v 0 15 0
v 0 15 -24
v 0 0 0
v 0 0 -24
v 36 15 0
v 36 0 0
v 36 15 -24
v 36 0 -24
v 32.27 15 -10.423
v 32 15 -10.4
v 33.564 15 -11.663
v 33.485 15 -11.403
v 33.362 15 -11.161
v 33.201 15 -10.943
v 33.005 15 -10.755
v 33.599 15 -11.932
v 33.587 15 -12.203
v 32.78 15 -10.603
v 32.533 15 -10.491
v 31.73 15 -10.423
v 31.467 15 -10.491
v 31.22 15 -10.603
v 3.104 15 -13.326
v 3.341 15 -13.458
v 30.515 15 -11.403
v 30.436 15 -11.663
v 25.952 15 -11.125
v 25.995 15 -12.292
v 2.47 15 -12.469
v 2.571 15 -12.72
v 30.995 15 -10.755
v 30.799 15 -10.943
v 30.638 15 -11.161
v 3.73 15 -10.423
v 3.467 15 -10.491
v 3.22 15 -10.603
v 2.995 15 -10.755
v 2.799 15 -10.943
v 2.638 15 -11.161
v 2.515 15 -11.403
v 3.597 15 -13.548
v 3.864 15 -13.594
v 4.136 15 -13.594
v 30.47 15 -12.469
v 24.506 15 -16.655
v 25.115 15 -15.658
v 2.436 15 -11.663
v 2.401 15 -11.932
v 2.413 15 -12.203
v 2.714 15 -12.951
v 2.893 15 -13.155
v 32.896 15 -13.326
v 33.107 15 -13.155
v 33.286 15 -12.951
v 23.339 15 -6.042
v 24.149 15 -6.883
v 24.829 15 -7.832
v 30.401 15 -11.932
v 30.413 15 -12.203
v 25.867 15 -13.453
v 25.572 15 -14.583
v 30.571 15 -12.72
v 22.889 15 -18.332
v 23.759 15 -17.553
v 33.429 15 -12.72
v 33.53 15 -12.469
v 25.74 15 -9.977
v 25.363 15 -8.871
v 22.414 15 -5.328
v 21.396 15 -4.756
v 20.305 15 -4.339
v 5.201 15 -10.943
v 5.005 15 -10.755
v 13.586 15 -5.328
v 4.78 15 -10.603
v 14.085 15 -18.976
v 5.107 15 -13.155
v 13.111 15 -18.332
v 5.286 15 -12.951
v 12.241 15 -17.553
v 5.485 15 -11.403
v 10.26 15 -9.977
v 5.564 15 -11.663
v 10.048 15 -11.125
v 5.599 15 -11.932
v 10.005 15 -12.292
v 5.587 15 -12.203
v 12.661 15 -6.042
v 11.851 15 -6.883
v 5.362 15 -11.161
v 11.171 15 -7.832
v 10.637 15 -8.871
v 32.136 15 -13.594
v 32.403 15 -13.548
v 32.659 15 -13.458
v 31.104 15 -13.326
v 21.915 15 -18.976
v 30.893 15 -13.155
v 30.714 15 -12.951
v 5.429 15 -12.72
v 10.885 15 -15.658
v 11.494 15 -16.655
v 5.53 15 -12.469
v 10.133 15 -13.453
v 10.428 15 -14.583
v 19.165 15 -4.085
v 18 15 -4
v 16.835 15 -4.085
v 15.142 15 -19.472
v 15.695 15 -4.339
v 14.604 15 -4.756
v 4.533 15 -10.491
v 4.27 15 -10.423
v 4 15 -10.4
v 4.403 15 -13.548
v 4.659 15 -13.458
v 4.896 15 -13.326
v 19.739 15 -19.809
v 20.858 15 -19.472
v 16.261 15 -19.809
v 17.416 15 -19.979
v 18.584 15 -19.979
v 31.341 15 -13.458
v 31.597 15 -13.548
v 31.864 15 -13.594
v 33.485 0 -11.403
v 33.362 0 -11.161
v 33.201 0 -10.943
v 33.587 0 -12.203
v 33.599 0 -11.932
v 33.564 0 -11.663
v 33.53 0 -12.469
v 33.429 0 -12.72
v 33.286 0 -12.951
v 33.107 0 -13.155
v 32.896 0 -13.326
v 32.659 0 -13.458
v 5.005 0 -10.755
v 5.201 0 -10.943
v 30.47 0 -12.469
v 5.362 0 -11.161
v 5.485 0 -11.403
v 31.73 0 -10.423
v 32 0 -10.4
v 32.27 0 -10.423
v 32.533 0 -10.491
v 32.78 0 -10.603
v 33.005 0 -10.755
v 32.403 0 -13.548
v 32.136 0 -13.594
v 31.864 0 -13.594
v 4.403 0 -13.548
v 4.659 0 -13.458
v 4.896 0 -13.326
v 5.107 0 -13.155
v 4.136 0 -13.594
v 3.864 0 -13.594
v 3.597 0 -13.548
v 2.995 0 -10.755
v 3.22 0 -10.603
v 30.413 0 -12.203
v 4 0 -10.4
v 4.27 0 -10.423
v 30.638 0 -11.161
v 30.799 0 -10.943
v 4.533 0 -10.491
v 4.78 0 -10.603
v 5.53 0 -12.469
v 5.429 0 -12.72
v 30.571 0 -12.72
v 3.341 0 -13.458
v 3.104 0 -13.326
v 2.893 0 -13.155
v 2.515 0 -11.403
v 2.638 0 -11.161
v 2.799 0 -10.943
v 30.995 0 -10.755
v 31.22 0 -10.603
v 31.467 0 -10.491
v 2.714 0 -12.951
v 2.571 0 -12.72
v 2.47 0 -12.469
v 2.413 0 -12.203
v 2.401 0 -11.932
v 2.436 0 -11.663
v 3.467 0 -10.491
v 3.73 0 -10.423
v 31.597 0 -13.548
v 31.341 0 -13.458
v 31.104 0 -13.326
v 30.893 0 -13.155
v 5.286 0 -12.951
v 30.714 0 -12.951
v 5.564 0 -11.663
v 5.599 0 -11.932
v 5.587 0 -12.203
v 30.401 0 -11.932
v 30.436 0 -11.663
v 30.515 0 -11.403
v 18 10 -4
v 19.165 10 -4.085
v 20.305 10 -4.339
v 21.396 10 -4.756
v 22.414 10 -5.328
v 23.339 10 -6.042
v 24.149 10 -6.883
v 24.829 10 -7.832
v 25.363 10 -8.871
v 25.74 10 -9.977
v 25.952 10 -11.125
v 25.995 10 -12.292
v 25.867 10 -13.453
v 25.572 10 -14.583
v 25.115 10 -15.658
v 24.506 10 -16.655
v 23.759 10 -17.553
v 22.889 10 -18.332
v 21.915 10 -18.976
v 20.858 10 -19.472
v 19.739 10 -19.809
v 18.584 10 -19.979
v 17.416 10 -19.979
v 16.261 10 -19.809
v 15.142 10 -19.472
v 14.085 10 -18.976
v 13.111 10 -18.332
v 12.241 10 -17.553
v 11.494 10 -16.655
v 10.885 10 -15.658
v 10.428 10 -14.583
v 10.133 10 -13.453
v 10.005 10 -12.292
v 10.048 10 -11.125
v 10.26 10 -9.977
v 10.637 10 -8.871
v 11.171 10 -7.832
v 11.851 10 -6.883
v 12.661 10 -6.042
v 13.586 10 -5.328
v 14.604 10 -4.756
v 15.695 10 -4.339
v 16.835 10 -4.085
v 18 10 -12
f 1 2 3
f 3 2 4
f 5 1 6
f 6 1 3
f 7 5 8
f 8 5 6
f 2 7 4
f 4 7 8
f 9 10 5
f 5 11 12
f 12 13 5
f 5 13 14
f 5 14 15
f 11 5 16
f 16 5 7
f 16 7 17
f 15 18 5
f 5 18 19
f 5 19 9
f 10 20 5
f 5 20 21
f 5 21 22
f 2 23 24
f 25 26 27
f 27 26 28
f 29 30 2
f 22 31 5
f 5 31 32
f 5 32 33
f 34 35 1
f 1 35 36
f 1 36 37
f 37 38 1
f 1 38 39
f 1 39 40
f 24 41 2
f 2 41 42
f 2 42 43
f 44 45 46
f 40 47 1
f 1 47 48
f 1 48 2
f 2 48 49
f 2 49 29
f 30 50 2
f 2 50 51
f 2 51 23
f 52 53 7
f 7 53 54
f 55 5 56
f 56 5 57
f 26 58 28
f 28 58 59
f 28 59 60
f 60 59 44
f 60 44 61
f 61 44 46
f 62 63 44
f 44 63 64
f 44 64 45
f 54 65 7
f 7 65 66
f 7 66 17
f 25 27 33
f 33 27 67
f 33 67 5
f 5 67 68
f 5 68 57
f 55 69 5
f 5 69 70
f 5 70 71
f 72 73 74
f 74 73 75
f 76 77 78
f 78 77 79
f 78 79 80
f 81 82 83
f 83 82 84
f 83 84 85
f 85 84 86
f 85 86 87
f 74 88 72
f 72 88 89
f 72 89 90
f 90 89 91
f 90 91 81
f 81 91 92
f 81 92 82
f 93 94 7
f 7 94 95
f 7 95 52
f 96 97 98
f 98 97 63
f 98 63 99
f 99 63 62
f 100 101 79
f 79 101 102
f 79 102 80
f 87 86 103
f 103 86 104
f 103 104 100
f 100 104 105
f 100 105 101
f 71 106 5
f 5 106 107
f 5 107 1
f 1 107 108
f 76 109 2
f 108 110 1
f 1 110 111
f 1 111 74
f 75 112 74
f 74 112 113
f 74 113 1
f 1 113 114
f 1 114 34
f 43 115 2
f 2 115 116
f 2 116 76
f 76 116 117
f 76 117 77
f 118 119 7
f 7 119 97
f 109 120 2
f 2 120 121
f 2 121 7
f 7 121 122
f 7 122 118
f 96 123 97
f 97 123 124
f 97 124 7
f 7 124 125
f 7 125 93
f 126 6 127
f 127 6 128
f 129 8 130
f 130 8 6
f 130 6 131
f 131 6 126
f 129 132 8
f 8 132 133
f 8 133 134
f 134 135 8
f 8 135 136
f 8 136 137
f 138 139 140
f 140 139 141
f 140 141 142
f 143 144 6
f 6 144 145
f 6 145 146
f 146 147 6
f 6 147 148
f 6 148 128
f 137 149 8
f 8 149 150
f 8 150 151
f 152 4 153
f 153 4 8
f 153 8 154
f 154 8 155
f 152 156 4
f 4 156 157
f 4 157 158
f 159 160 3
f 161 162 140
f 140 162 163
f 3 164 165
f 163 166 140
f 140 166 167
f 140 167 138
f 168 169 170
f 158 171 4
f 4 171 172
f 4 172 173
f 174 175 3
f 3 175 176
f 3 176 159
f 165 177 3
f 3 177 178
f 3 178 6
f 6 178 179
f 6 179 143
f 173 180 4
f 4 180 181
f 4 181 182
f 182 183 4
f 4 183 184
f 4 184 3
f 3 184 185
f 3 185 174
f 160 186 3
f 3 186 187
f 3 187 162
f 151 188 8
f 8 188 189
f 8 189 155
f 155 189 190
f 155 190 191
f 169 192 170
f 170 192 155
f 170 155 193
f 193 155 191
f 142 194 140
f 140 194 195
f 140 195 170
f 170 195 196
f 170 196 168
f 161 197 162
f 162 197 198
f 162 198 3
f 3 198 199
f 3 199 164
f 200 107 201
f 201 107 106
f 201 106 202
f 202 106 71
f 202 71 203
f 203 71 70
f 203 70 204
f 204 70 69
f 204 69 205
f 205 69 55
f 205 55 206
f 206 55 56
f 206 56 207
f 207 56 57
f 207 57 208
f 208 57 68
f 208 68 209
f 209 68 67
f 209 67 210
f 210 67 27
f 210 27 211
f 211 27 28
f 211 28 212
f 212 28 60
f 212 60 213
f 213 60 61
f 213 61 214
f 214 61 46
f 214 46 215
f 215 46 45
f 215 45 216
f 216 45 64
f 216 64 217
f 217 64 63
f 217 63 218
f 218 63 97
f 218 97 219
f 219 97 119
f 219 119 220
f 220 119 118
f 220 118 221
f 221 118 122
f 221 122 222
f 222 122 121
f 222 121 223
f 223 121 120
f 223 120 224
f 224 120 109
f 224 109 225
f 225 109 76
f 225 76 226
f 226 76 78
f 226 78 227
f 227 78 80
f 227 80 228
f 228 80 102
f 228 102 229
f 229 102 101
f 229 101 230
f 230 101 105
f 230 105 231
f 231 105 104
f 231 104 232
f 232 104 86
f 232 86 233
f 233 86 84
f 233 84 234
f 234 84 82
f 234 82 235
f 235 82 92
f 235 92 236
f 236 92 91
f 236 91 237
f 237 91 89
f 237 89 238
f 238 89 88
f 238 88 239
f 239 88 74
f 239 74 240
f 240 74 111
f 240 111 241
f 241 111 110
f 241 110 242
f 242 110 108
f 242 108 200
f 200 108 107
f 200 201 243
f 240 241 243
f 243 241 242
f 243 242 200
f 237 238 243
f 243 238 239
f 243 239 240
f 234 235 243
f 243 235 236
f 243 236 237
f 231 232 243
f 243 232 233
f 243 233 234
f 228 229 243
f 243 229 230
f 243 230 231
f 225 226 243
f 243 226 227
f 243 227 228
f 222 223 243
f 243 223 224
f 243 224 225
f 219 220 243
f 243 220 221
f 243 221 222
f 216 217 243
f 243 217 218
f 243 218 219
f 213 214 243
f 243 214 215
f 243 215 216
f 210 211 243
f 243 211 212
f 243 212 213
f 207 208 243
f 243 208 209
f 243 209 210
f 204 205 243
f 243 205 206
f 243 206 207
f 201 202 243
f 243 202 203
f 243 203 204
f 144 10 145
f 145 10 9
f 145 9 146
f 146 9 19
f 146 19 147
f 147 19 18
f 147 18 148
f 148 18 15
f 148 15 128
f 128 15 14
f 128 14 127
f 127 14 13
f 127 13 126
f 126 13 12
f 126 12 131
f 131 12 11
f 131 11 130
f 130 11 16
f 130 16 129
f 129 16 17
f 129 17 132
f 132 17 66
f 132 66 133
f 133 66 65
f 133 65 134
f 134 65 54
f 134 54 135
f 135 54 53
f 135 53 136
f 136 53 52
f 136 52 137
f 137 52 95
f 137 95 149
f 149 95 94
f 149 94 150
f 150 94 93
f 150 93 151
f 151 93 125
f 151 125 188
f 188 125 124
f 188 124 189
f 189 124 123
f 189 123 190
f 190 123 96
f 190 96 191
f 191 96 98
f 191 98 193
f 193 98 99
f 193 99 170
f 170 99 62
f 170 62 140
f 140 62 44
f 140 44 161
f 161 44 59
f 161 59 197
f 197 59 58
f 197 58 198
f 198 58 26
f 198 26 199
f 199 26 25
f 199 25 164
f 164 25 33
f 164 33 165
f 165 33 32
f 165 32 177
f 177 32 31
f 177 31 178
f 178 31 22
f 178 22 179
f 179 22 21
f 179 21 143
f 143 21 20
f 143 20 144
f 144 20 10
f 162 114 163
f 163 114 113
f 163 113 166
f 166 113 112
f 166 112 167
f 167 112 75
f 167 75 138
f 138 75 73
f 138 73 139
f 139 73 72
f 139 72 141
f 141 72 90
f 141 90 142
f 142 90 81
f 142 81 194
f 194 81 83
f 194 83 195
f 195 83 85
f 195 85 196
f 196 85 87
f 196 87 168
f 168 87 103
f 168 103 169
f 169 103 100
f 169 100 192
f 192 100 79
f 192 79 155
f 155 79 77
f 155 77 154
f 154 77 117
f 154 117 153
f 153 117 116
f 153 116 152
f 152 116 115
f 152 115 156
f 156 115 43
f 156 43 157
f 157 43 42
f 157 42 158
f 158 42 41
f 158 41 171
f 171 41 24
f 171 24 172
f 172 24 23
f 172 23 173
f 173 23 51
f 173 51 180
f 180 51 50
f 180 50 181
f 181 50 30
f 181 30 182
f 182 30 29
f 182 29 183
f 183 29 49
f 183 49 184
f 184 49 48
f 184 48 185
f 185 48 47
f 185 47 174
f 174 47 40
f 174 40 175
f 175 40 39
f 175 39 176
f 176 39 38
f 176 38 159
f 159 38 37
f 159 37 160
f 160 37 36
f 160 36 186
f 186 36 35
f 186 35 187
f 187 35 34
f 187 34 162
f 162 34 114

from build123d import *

# Parameters (mm, degrees)
SKETCH1_W                  = 36
SKETCH1_H                  = 24
BOSS_EXTRUDE1_DEPTH        = 15
SKETCH2_R                  = 8
CUT_EXTRUDE1_DEPTH         = 5
F_3_2_3_2_DIAMETER_HOLE1_D = 3.2


with BuildPart() as part:
    # Sketch1 → Boss-Extrude1 (new body)
    with BuildSketch(Plane(origin=(0, 0, 0), x_dir=(1, 0, 0), z_dir=(0, 1, 0))):
        with Locations((18, 12)):
            Rectangle(SKETCH1_W, SKETCH1_H)
    extrude(amount=BOSS_EXTRUDE1_DEPTH)

    # Sketch2 → Cut-Extrude1 (cut)
    with BuildSketch(Plane(origin=(0, 15, 0), x_dir=(1, 0, 0), z_dir=(0, 1, 0))):
        with Locations(Location((18, 12, 0), (0, 0, 270))):
            Circle(SKETCH2_R)
    extrude(amount=-CUT_EXTRUDE1_DEPTH, mode=Mode.SUBTRACT)

    # Ø3.2 (3.2) Diameter Hole1 (through all)
    with Locations(Plane(origin=(0, 15, 0), x_dir=(1, 0, 0), z_dir=(0, 1, 0))):
        with Locations((4, 12), (32, 12)):
            Hole(F_3_2_3_2_DIAMETER_HOLE1_D / 2)


solid = part.part
